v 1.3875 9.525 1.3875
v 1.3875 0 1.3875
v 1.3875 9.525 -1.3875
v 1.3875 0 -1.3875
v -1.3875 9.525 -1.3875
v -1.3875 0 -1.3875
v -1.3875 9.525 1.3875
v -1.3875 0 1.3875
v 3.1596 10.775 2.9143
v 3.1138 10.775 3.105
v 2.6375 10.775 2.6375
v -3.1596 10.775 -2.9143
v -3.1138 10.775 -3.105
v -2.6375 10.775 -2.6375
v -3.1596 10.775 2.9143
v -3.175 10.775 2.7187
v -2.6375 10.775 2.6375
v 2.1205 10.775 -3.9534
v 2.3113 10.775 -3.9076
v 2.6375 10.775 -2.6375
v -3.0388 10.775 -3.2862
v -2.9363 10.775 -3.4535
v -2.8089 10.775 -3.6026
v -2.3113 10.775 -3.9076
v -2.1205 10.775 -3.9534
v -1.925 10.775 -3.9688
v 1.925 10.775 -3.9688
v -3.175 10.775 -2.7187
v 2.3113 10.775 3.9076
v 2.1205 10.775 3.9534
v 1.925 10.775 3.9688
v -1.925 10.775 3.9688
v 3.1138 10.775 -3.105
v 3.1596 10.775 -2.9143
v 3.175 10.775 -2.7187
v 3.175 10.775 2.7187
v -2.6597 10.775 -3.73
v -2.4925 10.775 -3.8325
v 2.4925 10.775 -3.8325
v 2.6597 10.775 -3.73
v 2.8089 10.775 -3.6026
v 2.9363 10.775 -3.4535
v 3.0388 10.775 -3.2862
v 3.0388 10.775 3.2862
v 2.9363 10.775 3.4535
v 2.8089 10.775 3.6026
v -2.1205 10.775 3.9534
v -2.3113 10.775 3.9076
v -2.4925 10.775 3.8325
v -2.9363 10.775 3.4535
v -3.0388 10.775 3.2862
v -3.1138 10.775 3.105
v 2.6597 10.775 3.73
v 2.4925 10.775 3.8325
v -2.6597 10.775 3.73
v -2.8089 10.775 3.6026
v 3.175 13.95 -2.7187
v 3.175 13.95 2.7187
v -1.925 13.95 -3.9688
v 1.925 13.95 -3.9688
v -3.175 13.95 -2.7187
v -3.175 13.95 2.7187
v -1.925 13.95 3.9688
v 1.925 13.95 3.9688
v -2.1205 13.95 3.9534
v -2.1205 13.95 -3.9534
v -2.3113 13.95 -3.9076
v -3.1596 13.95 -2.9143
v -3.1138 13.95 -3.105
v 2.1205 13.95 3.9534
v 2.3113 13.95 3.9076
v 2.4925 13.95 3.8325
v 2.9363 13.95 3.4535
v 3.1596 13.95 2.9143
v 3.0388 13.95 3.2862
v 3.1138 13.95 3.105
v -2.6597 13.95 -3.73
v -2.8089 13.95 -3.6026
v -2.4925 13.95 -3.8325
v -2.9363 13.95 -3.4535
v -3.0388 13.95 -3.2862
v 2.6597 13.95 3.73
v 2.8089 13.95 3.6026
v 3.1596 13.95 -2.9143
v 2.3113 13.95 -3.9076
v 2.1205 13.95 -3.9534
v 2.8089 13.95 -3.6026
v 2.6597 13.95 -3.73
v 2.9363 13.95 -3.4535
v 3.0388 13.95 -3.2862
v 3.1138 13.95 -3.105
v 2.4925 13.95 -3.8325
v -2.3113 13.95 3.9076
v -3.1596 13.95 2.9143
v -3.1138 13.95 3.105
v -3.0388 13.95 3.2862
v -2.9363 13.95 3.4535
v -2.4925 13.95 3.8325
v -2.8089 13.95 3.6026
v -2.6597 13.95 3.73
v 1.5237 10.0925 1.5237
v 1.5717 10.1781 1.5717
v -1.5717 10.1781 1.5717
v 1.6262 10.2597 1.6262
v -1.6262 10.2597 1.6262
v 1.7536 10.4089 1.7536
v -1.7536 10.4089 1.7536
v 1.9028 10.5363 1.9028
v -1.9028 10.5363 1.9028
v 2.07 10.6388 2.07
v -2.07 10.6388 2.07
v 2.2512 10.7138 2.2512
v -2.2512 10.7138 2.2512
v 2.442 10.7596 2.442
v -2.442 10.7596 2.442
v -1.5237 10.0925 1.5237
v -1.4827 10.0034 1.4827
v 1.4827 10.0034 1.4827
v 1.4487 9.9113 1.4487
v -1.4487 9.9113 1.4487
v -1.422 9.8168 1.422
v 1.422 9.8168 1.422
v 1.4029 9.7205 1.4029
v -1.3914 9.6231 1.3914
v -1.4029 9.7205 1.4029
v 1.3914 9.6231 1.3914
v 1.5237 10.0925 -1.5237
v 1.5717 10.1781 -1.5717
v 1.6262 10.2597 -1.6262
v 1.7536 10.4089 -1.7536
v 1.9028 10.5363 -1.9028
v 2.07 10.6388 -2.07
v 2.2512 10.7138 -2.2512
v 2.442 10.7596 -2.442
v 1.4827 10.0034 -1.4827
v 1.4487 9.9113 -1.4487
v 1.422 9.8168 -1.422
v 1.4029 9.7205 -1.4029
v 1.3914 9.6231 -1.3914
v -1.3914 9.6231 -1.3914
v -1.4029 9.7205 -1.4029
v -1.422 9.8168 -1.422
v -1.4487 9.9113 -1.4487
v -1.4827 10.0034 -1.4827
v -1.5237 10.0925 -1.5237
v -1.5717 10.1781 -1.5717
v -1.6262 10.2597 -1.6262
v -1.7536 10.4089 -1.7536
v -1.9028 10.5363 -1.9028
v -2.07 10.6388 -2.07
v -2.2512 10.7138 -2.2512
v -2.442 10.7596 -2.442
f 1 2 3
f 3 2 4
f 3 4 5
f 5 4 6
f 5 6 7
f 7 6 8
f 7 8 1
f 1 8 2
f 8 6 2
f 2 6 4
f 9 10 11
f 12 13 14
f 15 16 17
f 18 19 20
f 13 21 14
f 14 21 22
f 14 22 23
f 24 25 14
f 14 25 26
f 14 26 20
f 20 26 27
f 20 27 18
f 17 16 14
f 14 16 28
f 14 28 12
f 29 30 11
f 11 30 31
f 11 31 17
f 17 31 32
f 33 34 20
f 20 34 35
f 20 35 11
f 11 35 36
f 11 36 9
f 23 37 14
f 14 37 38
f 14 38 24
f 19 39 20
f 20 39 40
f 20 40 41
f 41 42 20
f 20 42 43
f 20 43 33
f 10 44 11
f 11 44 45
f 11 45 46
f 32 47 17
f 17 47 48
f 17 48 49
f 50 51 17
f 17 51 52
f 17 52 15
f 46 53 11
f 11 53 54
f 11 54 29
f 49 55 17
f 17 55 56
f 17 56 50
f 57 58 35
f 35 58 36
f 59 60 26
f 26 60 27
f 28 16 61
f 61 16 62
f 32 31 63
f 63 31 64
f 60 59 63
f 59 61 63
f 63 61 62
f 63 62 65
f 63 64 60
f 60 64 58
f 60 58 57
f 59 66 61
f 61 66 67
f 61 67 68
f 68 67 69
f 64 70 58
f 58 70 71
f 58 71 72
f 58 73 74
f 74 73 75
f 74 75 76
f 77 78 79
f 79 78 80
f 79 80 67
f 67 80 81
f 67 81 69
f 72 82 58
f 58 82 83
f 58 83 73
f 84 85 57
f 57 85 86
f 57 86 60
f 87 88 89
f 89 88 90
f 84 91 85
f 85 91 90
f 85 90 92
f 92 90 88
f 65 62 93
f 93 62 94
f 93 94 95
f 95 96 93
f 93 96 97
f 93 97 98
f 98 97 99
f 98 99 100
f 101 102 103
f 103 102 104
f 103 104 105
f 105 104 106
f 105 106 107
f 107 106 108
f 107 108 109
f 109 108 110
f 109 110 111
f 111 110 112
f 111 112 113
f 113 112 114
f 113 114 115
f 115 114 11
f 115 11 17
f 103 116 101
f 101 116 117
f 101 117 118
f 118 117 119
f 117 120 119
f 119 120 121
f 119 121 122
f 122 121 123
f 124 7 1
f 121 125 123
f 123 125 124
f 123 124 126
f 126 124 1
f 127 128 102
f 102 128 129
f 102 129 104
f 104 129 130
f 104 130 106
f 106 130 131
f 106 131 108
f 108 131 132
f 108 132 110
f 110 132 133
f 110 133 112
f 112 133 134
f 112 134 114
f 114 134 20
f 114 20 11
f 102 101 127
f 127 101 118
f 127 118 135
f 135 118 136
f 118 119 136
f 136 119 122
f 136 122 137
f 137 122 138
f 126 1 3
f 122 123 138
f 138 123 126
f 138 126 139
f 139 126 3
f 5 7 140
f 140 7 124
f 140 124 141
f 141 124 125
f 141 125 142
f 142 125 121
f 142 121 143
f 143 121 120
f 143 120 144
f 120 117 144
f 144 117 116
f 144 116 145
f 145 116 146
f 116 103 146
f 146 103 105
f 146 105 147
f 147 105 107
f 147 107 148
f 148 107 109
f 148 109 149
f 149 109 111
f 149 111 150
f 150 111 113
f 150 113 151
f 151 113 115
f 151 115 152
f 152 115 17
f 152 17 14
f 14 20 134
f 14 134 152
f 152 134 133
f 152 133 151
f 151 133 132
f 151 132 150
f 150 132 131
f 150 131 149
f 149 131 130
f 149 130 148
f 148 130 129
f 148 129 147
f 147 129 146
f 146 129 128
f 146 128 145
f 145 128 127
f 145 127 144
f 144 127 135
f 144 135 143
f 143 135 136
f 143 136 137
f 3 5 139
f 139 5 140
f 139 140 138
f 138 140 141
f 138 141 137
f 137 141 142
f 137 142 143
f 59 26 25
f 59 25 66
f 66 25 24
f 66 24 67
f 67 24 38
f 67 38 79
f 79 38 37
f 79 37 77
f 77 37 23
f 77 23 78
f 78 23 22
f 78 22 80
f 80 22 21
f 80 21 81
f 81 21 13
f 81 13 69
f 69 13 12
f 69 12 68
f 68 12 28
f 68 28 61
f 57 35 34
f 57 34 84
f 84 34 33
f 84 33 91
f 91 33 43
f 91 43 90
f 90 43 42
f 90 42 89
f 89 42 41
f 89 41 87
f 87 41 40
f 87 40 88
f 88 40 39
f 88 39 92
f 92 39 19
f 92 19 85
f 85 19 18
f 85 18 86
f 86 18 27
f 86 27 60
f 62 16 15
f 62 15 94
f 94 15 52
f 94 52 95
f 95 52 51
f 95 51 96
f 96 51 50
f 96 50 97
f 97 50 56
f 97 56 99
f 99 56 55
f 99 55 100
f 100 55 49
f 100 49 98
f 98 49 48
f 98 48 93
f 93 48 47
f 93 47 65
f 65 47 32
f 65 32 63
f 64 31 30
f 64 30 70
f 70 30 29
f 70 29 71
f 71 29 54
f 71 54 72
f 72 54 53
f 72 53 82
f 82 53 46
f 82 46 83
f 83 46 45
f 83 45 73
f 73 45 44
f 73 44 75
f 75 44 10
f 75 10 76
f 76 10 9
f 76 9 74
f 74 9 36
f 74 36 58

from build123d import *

# Parameters (mm, degrees)
SKETCH1_W           = 2.775
SKETCH1_H           = 2.775
BOSS_EXTRUDE1_DEPTH = 10.775
SKETCH2_W           = 6.35
SKETCH2_H           = 7.9375
BOSS_EXTRUDE2_DEPTH = 3.175
FILLET1_R           = 1.25


with BuildPart() as part:
    # Sketch1 → Boss-Extrude1 (new body)
    with BuildSketch(Plane(origin=(0, 0, 0), x_dir=(1, 0, 0), z_dir=(0, 1, 0))):
        Rectangle(SKETCH1_W, SKETCH1_H)
    extrude(amount=BOSS_EXTRUDE1_DEPTH)

    # Sketch2 → Boss-Extrude2 (add)
    with BuildSketch(Plane(origin=(0, 10.775, 0), x_dir=(1, 0, 0), z_dir=(0, 1, 0))):
        Rectangle(SKETCH2_W, SKETCH2_H)
    extrude(amount=BOSS_EXTRUDE2_DEPTH)

    # Fillet1
    fillet1_edges = [part.edges().sort_by_distance(p)[0] for p in [
        (0, 10.775, -1.3875),
        (1.3875, 10.775, 0),
        (0, 10.775, 1.3875),
        (-1.3875, 10.775, 0),
        (-3.175, 12.3625, -3.96875),
        (3.175, 12.3625, -3.96875),
        (-3.175, 12.3625, 3.96875),
        (3.175, 12.3625, 3.96875),
    ]]
    fillet(fillet1_edges, radius=FILLET1_R)


solid = part.part
